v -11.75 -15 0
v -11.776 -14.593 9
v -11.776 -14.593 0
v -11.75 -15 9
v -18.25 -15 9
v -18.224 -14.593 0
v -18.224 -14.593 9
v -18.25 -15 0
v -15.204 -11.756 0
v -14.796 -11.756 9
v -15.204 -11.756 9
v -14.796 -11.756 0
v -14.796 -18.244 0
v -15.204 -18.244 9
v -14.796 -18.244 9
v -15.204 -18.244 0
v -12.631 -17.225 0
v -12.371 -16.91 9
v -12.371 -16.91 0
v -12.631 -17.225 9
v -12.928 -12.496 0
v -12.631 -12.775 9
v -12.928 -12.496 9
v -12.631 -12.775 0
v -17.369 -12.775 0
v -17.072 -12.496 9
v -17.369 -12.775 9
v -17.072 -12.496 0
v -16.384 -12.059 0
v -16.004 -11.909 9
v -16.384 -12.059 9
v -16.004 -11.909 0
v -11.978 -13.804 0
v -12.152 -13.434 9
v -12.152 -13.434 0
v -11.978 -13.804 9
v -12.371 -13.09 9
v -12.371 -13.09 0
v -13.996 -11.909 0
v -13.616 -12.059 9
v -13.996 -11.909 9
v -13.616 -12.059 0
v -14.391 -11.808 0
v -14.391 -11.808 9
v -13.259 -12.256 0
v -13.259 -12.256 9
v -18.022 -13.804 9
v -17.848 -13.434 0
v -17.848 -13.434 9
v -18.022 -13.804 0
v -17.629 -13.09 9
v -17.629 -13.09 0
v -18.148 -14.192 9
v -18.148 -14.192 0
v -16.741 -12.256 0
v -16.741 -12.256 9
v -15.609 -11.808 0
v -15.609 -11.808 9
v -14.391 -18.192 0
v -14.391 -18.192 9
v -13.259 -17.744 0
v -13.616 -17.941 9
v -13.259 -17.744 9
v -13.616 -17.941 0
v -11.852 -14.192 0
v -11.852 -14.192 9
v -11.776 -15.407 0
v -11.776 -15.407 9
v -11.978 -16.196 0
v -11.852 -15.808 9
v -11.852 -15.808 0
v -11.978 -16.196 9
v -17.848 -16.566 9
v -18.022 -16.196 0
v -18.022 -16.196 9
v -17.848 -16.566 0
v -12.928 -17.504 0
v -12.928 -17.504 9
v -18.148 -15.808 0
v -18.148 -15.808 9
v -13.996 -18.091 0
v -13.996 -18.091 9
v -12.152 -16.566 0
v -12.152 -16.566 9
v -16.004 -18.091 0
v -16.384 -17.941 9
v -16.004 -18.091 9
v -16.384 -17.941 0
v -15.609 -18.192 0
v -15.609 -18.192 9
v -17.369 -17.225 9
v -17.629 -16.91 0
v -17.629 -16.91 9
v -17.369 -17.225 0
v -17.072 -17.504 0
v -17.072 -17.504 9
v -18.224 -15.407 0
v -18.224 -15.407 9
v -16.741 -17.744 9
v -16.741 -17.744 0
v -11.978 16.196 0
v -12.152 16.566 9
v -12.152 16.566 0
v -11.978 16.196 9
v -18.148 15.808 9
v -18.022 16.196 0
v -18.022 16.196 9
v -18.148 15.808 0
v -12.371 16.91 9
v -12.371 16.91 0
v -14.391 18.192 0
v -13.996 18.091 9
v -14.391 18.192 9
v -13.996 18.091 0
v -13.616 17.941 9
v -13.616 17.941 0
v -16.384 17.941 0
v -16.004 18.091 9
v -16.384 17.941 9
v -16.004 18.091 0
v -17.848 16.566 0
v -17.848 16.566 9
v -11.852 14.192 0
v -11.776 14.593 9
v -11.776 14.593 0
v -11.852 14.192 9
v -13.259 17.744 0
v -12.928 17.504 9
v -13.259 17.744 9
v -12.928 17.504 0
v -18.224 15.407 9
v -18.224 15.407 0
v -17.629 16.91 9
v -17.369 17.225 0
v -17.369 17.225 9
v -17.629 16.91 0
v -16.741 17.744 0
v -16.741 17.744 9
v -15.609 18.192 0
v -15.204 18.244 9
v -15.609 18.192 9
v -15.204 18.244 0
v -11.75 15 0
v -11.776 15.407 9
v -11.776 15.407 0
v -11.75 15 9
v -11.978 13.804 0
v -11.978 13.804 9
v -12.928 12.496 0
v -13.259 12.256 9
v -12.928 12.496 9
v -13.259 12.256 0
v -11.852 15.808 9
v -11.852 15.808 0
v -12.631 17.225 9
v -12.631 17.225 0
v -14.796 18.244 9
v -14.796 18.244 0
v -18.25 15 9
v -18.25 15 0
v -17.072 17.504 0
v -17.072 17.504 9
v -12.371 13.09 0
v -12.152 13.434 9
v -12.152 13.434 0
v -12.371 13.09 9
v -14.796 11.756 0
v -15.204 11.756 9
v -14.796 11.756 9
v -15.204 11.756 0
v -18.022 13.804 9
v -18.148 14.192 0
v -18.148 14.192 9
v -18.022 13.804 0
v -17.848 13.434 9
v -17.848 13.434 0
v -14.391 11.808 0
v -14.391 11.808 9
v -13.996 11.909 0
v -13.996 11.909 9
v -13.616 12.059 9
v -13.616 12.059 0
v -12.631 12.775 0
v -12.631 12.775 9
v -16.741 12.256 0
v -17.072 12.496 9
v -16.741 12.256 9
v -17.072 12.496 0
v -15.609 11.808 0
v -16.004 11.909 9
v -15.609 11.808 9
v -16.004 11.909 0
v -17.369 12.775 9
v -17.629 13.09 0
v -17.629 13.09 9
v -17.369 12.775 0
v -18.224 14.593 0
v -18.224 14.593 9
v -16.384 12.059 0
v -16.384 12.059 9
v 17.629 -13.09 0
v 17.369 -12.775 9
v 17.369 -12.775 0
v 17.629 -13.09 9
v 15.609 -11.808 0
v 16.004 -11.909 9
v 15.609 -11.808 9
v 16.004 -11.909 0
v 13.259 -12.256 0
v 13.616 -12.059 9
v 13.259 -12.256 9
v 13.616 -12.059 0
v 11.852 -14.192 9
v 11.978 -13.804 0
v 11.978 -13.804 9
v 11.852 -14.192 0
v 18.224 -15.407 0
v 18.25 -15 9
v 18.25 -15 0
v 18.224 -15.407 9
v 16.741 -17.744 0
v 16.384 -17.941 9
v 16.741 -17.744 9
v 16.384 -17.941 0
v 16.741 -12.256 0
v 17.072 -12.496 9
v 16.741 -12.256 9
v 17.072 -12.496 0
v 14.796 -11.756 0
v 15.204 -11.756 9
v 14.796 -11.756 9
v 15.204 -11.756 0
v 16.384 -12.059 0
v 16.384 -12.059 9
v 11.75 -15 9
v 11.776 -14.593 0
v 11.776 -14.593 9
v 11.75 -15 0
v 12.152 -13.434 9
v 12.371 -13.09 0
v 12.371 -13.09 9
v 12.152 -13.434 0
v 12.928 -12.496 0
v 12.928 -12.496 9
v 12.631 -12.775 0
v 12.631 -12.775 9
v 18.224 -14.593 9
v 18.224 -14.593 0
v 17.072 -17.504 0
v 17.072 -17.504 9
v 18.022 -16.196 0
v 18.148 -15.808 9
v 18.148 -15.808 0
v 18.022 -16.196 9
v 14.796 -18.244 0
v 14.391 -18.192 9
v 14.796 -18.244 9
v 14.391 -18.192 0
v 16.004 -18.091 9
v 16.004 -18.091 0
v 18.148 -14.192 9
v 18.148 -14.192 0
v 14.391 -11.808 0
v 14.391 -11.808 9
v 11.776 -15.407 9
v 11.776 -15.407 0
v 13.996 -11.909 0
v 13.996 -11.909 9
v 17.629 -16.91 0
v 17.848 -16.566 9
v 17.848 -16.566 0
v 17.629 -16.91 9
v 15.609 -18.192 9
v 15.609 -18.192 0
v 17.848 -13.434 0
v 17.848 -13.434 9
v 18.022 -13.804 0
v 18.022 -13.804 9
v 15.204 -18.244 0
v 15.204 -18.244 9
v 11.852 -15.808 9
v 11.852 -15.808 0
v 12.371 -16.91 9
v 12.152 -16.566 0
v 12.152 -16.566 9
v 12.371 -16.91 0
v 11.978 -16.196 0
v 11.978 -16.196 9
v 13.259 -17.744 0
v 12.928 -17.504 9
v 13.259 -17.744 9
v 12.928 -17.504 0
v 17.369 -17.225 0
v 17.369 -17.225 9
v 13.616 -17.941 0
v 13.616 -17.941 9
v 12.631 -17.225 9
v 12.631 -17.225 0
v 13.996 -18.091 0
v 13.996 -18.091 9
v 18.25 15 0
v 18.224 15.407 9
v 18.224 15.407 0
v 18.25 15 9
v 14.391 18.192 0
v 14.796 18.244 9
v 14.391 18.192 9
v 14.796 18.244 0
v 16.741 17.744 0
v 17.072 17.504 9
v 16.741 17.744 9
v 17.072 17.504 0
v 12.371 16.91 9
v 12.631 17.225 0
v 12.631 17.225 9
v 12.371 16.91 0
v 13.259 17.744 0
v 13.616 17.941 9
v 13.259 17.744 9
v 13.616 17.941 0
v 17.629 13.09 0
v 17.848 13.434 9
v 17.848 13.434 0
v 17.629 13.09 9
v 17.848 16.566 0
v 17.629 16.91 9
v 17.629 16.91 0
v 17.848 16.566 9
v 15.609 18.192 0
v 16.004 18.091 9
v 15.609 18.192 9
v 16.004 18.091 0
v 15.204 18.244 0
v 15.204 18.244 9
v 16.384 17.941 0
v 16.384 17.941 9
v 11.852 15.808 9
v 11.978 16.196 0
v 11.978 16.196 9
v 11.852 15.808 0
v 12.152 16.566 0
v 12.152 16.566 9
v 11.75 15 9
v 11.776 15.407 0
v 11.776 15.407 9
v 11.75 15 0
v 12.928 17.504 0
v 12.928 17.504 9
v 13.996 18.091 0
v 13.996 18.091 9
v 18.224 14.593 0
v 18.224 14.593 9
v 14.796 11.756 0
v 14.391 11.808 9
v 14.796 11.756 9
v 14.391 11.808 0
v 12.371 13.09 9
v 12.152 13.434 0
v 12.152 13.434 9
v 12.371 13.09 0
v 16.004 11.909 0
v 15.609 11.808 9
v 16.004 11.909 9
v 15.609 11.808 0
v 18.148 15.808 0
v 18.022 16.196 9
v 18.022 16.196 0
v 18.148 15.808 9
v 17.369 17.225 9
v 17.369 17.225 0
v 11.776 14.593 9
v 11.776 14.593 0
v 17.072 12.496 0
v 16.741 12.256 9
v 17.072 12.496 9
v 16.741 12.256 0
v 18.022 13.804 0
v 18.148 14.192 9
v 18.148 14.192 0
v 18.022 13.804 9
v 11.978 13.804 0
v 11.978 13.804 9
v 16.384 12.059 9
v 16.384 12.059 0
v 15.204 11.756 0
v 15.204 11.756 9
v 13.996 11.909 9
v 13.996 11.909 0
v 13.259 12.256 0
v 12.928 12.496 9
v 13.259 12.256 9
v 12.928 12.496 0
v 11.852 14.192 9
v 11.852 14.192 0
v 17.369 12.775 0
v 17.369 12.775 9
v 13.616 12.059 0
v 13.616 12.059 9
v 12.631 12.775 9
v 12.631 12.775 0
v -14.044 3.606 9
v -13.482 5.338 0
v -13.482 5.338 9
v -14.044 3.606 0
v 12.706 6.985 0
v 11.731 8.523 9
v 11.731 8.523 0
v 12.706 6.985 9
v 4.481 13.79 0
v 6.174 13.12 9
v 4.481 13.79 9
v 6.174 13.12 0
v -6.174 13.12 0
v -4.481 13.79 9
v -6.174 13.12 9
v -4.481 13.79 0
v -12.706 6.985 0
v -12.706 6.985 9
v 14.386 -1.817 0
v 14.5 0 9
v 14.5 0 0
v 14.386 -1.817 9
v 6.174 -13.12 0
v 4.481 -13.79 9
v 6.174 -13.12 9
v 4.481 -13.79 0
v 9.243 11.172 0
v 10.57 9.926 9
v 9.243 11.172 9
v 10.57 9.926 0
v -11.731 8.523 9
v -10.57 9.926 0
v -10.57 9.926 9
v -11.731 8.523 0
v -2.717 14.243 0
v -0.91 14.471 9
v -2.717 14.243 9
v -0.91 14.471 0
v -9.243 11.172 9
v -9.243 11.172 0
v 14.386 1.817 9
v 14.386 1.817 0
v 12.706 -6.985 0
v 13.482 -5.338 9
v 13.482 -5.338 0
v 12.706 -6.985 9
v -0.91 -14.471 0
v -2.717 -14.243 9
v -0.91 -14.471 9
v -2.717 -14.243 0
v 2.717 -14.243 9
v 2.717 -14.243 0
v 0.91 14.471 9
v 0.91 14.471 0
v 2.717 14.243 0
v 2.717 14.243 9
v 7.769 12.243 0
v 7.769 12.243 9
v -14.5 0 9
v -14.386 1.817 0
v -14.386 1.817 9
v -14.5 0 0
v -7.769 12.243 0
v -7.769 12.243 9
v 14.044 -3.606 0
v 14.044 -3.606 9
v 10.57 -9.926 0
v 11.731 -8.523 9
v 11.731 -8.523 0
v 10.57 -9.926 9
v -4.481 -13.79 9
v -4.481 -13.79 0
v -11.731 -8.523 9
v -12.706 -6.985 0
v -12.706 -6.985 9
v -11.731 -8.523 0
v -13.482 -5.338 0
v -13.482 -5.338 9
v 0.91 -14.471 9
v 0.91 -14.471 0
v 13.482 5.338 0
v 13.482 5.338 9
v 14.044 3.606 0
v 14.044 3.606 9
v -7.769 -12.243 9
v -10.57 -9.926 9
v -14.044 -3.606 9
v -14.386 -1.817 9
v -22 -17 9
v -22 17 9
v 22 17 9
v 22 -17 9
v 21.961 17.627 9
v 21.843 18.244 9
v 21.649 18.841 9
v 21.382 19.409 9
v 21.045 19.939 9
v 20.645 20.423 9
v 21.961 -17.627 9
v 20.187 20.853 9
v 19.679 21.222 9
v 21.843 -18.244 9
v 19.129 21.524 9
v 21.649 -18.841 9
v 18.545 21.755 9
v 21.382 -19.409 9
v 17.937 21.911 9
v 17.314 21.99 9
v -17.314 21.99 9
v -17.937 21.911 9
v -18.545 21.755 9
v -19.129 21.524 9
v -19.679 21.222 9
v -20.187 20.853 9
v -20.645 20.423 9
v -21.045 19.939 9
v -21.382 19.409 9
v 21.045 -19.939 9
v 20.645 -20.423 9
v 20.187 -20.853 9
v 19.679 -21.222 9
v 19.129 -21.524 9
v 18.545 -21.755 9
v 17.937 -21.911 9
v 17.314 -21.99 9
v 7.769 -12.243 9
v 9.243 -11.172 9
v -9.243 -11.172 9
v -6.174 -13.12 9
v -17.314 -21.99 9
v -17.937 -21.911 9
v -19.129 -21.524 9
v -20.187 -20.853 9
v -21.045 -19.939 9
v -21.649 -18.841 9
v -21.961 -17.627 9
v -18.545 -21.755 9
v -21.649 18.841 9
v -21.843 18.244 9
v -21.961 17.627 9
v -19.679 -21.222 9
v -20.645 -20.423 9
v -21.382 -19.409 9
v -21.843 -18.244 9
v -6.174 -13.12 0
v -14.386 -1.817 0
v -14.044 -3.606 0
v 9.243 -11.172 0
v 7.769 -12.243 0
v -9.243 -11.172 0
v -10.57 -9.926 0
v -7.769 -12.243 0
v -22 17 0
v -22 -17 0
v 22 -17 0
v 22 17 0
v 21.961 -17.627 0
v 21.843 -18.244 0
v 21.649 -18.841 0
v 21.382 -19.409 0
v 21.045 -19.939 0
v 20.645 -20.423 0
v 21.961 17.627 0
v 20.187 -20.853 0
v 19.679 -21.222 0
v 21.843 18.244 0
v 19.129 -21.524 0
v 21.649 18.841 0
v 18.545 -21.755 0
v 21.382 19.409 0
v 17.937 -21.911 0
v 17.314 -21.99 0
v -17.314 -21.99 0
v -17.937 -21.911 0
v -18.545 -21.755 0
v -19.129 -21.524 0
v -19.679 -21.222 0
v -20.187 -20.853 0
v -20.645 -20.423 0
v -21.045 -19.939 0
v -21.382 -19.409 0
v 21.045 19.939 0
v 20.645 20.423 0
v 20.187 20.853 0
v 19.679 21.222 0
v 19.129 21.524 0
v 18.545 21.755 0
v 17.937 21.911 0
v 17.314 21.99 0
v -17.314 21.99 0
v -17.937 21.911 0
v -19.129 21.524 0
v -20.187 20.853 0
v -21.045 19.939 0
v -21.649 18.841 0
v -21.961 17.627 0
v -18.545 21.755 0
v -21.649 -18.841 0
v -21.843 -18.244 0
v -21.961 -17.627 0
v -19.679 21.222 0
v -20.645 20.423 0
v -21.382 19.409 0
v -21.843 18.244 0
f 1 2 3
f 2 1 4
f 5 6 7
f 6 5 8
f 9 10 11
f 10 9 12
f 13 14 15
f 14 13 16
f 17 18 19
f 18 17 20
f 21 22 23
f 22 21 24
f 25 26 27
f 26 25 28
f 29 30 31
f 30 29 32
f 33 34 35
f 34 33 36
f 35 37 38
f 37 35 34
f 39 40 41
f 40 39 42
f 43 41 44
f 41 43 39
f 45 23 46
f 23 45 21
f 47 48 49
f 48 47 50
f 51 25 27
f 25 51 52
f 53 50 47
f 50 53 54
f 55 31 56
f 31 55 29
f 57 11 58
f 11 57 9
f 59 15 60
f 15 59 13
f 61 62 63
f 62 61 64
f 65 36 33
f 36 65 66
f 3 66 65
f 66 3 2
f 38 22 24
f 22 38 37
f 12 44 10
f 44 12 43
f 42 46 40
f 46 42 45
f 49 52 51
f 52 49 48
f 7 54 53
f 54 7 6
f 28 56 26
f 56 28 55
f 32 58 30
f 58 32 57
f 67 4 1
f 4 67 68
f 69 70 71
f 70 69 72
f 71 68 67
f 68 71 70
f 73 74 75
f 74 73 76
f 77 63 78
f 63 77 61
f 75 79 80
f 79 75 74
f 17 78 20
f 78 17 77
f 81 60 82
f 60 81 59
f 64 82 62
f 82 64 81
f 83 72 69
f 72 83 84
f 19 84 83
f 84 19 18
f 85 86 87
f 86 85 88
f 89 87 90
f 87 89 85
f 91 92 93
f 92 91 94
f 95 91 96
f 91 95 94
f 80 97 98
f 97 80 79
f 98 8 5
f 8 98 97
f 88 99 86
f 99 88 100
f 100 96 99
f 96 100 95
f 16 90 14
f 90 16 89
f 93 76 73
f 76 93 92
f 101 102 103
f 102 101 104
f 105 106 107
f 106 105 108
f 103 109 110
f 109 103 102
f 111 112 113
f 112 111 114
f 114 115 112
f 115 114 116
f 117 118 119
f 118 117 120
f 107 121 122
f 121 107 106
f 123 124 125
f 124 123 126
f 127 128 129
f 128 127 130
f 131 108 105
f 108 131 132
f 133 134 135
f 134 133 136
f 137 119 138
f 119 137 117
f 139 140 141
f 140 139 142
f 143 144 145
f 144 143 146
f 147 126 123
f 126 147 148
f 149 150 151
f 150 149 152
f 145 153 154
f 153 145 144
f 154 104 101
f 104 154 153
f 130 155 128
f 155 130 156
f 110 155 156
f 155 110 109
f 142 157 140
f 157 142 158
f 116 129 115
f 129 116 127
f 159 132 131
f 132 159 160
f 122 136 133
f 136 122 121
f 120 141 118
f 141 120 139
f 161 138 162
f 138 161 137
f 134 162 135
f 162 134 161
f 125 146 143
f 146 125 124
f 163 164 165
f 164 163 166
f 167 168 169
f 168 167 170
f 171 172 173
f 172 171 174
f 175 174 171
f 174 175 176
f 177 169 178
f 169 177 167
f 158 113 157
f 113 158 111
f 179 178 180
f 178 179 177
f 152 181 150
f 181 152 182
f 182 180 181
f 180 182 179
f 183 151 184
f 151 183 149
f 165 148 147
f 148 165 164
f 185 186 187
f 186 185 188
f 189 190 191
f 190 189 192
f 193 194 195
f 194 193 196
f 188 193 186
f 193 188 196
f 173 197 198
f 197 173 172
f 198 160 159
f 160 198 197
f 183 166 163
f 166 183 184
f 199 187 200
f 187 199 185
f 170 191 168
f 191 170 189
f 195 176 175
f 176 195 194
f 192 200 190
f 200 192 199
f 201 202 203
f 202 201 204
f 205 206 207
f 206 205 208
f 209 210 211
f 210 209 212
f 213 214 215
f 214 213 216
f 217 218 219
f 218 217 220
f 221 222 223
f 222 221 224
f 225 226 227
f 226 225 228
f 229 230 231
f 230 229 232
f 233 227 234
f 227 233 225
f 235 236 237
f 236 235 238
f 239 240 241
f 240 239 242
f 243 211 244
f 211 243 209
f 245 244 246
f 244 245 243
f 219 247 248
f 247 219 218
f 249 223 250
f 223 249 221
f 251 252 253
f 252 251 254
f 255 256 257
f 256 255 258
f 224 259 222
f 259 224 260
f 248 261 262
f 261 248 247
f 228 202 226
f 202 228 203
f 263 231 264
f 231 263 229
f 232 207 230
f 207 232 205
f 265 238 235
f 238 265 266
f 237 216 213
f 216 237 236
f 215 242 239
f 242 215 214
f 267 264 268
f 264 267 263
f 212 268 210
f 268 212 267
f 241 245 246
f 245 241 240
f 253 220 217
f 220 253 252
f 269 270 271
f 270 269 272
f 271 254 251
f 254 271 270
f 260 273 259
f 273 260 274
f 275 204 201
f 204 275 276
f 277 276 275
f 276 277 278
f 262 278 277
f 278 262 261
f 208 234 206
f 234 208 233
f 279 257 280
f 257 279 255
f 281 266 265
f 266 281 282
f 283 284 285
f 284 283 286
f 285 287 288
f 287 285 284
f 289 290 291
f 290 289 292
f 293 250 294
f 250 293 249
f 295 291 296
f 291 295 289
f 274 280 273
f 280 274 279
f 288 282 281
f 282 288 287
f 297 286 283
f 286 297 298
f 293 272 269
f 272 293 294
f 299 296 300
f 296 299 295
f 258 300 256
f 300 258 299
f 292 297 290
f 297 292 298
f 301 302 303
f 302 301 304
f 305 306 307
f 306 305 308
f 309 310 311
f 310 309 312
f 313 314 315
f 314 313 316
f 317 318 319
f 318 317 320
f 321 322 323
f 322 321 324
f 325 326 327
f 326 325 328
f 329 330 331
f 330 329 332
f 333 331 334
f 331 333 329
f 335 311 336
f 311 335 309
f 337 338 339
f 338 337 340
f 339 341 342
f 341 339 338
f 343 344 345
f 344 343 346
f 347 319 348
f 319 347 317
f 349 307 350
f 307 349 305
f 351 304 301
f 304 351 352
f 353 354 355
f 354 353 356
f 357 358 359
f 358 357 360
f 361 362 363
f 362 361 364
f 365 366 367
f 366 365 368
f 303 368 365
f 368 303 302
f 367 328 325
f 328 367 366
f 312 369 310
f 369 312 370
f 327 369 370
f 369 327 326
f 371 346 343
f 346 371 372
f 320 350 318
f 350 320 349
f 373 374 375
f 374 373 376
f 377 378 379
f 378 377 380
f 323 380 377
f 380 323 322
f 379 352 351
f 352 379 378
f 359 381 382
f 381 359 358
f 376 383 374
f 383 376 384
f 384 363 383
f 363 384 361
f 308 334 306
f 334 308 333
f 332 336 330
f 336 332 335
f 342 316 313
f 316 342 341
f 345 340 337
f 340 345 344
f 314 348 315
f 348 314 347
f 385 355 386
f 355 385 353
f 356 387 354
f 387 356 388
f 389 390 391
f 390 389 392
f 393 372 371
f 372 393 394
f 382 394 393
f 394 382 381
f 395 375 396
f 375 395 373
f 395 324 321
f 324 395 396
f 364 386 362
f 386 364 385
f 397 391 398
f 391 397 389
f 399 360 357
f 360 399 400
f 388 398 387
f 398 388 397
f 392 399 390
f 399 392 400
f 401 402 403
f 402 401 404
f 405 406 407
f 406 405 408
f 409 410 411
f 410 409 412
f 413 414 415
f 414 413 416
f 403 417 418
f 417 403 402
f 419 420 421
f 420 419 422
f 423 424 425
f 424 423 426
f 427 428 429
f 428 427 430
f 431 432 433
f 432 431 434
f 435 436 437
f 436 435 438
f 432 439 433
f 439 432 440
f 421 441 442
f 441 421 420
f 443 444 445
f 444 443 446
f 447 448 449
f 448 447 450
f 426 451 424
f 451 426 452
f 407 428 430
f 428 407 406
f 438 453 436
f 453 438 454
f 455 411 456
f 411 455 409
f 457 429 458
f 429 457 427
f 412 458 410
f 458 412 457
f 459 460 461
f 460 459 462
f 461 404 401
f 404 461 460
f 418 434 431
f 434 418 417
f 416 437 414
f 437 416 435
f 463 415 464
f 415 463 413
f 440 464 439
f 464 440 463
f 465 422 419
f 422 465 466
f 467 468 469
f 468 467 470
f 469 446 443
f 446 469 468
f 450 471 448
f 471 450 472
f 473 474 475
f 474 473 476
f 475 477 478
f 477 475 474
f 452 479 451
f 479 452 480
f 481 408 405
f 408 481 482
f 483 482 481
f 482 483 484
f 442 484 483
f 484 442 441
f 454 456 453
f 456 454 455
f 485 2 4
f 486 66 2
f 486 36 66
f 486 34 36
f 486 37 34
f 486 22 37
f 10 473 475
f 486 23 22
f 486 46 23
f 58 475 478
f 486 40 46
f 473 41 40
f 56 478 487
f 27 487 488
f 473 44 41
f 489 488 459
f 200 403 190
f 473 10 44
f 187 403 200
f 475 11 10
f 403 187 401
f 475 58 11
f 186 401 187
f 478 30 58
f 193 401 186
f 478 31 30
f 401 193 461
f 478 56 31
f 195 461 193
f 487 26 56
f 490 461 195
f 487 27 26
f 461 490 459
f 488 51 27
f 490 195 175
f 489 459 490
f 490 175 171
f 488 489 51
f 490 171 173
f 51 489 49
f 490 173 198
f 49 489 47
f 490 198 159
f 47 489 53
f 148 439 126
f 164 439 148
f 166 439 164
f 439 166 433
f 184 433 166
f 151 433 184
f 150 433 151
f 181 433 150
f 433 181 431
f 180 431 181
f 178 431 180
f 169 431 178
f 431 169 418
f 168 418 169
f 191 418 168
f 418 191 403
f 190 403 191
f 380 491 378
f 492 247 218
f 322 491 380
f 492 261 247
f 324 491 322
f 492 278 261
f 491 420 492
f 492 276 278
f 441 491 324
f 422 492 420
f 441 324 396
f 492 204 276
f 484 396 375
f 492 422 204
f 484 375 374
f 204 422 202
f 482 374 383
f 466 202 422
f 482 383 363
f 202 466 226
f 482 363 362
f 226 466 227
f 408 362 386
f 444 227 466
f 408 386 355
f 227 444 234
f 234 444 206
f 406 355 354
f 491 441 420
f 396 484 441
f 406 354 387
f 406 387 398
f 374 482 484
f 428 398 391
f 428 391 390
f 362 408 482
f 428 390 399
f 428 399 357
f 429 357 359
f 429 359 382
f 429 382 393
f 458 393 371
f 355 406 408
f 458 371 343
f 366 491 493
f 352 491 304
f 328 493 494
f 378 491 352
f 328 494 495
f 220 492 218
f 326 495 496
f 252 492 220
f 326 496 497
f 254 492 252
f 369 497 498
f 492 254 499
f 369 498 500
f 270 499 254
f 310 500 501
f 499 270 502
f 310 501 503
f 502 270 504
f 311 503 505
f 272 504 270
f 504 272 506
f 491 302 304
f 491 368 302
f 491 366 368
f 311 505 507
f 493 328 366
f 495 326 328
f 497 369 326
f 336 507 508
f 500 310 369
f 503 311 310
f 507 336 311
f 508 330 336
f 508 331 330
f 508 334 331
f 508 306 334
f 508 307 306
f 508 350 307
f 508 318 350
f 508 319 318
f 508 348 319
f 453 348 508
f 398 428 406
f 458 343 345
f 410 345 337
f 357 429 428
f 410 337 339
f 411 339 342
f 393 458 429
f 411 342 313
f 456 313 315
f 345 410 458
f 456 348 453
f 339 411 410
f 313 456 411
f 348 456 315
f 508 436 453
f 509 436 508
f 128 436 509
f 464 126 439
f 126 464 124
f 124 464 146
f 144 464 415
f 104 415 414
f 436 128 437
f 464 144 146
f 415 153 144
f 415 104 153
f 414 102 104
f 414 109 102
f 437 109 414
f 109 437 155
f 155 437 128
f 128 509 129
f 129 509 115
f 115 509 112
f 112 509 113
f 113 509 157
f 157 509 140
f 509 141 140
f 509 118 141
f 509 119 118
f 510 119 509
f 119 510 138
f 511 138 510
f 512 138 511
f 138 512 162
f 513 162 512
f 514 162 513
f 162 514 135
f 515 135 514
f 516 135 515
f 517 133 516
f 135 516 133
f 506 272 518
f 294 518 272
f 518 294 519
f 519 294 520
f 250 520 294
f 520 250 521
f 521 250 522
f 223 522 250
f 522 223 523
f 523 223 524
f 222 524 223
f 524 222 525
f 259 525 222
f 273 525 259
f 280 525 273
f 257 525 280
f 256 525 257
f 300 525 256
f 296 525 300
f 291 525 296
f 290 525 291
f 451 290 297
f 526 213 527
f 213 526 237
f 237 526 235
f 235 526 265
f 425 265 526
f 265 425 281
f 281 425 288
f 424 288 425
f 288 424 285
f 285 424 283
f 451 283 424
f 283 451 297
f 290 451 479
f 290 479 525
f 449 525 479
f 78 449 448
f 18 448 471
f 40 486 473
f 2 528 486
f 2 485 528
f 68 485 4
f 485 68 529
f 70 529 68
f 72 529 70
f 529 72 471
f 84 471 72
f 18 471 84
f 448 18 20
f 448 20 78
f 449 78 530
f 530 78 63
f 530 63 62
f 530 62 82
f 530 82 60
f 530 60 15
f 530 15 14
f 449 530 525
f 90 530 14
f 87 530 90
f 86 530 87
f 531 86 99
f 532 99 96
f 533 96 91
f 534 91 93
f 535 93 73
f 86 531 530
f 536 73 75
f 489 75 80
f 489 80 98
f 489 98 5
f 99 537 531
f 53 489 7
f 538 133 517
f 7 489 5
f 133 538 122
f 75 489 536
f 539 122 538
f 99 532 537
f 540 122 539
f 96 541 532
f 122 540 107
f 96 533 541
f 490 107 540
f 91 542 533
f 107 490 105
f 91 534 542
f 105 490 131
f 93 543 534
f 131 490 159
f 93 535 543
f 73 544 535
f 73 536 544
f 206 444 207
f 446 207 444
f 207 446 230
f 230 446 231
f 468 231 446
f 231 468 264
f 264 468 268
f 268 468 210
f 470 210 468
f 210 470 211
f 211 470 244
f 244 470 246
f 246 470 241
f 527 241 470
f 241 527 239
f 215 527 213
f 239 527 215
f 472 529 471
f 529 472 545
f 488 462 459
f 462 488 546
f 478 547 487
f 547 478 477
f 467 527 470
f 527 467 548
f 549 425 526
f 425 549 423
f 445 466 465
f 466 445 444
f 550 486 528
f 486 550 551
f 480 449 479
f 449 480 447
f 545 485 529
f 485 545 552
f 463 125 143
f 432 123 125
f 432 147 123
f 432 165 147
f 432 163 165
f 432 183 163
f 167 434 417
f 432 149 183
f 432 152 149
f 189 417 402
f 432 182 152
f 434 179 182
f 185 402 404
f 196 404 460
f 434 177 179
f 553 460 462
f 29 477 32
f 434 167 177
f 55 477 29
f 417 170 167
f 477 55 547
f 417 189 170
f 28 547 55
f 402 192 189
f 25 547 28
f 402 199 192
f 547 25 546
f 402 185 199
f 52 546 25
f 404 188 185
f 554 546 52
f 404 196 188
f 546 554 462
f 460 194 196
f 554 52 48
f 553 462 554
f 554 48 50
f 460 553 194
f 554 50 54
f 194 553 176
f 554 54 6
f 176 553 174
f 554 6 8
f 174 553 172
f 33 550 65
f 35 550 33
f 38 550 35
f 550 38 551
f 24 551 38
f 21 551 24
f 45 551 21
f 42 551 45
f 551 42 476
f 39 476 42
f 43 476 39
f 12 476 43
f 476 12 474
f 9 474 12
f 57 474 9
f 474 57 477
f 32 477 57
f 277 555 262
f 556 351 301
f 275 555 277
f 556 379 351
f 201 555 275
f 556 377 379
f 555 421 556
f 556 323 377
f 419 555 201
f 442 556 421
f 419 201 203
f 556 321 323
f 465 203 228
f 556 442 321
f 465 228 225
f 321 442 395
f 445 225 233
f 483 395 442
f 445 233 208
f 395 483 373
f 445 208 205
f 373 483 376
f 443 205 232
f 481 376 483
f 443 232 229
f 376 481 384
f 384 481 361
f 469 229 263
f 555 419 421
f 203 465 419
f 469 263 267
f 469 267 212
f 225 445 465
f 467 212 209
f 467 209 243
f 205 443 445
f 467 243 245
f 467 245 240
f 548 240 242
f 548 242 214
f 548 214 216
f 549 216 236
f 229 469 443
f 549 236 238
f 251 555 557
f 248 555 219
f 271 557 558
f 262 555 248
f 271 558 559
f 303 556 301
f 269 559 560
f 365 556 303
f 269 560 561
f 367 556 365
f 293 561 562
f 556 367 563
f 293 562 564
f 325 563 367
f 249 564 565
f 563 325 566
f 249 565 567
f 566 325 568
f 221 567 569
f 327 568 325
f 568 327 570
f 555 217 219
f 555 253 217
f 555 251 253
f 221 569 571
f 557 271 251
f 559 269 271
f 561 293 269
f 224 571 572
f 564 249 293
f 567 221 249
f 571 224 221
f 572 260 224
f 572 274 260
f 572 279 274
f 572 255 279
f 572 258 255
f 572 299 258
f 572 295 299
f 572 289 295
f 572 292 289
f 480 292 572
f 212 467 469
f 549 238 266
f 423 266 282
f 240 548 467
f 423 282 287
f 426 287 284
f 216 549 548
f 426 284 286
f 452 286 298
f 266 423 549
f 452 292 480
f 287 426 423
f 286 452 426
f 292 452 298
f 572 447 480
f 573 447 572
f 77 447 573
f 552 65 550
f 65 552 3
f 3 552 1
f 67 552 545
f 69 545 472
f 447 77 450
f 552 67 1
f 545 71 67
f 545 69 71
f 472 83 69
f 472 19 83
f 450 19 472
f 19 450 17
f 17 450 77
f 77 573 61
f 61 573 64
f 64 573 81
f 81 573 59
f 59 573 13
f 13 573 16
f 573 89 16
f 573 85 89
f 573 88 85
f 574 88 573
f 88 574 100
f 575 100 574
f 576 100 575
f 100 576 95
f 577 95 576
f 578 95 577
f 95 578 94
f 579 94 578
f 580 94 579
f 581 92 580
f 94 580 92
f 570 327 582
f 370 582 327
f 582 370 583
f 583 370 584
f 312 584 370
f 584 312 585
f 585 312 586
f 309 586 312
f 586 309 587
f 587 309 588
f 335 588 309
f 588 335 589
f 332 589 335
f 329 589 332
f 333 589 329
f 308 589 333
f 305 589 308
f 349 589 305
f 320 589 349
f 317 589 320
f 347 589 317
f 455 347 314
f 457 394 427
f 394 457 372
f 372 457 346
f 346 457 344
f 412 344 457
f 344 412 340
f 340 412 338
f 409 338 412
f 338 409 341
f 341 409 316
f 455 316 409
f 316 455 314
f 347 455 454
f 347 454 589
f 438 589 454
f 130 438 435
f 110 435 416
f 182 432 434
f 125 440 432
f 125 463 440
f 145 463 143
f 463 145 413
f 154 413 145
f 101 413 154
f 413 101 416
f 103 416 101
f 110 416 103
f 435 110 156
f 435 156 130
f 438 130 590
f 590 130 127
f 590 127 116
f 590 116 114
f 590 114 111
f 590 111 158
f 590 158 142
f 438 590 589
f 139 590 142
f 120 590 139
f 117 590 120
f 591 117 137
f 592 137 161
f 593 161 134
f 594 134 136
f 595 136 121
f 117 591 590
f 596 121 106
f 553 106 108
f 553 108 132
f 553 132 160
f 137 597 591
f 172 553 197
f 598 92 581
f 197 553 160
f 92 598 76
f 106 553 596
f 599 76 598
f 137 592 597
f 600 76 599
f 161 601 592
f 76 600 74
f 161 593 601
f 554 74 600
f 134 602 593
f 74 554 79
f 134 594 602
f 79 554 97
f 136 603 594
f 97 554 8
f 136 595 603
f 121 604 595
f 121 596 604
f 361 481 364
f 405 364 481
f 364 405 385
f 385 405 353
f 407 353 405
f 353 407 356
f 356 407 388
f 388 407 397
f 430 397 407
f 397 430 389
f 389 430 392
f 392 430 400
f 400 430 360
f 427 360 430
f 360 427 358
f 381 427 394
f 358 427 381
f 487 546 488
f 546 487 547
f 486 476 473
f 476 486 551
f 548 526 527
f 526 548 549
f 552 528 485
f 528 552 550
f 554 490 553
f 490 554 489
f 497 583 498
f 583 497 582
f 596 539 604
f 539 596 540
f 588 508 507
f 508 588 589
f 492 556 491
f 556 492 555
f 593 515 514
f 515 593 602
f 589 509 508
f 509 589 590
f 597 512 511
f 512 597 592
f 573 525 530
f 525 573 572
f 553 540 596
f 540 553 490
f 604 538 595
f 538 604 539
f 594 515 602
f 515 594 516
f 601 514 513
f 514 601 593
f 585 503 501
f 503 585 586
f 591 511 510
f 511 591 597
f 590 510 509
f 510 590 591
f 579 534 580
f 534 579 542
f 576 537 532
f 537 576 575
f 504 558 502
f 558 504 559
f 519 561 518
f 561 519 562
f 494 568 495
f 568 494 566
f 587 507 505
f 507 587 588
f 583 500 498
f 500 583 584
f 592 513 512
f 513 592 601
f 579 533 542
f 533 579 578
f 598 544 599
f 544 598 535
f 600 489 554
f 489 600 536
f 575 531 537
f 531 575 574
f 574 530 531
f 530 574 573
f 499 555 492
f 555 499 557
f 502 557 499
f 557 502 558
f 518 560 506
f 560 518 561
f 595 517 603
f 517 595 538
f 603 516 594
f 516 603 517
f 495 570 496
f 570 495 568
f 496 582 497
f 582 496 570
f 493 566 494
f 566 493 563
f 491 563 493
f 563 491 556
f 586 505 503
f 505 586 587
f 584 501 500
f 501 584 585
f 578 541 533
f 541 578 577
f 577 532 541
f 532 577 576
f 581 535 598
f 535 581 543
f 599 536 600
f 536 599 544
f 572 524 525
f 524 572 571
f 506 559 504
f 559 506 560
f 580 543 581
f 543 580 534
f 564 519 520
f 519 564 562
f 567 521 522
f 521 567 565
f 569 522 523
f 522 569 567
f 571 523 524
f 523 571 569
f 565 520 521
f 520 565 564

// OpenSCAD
$fn = 50;


difference() {
	union() {
		hull() {
			translate(v = [-17.0000000000, 17.0000000000, 0]) {
				cylinder(h = 9, r = 5);
			}
			translate(v = [17.0000000000, 17.0000000000, 0]) {
				cylinder(h = 9, r = 5);
			}
			translate(v = [-17.0000000000, -17.0000000000, 0]) {
				cylinder(h = 9, r = 5);
			}
			translate(v = [17.0000000000, -17.0000000000, 0]) {
				cylinder(h = 9, r = 5);
			}
		}
	}
	union() {
		#translate(v = [-15.0000000000, -15.0000000000, -100.0000000000]) {
			cylinder(h = 200, r = 3.2500000000);
		}
		#translate(v = [-15.0000000000, 15.0000000000, -100.0000000000]) {
			cylinder(h = 200, r = 3.2500000000);
		}
		#translate(v = [15.0000000000, -15.0000000000, -100.0000000000]) {
			cylinder(h = 200, r = 3.2500000000);
		}
		#translate(v = [15.0000000000, 15.0000000000, -100.0000000000]) {
			cylinder(h = 200, r = 3.2500000000);
		}
		#cylinder(h = 9, r = 14.5000000000);
	}
}
